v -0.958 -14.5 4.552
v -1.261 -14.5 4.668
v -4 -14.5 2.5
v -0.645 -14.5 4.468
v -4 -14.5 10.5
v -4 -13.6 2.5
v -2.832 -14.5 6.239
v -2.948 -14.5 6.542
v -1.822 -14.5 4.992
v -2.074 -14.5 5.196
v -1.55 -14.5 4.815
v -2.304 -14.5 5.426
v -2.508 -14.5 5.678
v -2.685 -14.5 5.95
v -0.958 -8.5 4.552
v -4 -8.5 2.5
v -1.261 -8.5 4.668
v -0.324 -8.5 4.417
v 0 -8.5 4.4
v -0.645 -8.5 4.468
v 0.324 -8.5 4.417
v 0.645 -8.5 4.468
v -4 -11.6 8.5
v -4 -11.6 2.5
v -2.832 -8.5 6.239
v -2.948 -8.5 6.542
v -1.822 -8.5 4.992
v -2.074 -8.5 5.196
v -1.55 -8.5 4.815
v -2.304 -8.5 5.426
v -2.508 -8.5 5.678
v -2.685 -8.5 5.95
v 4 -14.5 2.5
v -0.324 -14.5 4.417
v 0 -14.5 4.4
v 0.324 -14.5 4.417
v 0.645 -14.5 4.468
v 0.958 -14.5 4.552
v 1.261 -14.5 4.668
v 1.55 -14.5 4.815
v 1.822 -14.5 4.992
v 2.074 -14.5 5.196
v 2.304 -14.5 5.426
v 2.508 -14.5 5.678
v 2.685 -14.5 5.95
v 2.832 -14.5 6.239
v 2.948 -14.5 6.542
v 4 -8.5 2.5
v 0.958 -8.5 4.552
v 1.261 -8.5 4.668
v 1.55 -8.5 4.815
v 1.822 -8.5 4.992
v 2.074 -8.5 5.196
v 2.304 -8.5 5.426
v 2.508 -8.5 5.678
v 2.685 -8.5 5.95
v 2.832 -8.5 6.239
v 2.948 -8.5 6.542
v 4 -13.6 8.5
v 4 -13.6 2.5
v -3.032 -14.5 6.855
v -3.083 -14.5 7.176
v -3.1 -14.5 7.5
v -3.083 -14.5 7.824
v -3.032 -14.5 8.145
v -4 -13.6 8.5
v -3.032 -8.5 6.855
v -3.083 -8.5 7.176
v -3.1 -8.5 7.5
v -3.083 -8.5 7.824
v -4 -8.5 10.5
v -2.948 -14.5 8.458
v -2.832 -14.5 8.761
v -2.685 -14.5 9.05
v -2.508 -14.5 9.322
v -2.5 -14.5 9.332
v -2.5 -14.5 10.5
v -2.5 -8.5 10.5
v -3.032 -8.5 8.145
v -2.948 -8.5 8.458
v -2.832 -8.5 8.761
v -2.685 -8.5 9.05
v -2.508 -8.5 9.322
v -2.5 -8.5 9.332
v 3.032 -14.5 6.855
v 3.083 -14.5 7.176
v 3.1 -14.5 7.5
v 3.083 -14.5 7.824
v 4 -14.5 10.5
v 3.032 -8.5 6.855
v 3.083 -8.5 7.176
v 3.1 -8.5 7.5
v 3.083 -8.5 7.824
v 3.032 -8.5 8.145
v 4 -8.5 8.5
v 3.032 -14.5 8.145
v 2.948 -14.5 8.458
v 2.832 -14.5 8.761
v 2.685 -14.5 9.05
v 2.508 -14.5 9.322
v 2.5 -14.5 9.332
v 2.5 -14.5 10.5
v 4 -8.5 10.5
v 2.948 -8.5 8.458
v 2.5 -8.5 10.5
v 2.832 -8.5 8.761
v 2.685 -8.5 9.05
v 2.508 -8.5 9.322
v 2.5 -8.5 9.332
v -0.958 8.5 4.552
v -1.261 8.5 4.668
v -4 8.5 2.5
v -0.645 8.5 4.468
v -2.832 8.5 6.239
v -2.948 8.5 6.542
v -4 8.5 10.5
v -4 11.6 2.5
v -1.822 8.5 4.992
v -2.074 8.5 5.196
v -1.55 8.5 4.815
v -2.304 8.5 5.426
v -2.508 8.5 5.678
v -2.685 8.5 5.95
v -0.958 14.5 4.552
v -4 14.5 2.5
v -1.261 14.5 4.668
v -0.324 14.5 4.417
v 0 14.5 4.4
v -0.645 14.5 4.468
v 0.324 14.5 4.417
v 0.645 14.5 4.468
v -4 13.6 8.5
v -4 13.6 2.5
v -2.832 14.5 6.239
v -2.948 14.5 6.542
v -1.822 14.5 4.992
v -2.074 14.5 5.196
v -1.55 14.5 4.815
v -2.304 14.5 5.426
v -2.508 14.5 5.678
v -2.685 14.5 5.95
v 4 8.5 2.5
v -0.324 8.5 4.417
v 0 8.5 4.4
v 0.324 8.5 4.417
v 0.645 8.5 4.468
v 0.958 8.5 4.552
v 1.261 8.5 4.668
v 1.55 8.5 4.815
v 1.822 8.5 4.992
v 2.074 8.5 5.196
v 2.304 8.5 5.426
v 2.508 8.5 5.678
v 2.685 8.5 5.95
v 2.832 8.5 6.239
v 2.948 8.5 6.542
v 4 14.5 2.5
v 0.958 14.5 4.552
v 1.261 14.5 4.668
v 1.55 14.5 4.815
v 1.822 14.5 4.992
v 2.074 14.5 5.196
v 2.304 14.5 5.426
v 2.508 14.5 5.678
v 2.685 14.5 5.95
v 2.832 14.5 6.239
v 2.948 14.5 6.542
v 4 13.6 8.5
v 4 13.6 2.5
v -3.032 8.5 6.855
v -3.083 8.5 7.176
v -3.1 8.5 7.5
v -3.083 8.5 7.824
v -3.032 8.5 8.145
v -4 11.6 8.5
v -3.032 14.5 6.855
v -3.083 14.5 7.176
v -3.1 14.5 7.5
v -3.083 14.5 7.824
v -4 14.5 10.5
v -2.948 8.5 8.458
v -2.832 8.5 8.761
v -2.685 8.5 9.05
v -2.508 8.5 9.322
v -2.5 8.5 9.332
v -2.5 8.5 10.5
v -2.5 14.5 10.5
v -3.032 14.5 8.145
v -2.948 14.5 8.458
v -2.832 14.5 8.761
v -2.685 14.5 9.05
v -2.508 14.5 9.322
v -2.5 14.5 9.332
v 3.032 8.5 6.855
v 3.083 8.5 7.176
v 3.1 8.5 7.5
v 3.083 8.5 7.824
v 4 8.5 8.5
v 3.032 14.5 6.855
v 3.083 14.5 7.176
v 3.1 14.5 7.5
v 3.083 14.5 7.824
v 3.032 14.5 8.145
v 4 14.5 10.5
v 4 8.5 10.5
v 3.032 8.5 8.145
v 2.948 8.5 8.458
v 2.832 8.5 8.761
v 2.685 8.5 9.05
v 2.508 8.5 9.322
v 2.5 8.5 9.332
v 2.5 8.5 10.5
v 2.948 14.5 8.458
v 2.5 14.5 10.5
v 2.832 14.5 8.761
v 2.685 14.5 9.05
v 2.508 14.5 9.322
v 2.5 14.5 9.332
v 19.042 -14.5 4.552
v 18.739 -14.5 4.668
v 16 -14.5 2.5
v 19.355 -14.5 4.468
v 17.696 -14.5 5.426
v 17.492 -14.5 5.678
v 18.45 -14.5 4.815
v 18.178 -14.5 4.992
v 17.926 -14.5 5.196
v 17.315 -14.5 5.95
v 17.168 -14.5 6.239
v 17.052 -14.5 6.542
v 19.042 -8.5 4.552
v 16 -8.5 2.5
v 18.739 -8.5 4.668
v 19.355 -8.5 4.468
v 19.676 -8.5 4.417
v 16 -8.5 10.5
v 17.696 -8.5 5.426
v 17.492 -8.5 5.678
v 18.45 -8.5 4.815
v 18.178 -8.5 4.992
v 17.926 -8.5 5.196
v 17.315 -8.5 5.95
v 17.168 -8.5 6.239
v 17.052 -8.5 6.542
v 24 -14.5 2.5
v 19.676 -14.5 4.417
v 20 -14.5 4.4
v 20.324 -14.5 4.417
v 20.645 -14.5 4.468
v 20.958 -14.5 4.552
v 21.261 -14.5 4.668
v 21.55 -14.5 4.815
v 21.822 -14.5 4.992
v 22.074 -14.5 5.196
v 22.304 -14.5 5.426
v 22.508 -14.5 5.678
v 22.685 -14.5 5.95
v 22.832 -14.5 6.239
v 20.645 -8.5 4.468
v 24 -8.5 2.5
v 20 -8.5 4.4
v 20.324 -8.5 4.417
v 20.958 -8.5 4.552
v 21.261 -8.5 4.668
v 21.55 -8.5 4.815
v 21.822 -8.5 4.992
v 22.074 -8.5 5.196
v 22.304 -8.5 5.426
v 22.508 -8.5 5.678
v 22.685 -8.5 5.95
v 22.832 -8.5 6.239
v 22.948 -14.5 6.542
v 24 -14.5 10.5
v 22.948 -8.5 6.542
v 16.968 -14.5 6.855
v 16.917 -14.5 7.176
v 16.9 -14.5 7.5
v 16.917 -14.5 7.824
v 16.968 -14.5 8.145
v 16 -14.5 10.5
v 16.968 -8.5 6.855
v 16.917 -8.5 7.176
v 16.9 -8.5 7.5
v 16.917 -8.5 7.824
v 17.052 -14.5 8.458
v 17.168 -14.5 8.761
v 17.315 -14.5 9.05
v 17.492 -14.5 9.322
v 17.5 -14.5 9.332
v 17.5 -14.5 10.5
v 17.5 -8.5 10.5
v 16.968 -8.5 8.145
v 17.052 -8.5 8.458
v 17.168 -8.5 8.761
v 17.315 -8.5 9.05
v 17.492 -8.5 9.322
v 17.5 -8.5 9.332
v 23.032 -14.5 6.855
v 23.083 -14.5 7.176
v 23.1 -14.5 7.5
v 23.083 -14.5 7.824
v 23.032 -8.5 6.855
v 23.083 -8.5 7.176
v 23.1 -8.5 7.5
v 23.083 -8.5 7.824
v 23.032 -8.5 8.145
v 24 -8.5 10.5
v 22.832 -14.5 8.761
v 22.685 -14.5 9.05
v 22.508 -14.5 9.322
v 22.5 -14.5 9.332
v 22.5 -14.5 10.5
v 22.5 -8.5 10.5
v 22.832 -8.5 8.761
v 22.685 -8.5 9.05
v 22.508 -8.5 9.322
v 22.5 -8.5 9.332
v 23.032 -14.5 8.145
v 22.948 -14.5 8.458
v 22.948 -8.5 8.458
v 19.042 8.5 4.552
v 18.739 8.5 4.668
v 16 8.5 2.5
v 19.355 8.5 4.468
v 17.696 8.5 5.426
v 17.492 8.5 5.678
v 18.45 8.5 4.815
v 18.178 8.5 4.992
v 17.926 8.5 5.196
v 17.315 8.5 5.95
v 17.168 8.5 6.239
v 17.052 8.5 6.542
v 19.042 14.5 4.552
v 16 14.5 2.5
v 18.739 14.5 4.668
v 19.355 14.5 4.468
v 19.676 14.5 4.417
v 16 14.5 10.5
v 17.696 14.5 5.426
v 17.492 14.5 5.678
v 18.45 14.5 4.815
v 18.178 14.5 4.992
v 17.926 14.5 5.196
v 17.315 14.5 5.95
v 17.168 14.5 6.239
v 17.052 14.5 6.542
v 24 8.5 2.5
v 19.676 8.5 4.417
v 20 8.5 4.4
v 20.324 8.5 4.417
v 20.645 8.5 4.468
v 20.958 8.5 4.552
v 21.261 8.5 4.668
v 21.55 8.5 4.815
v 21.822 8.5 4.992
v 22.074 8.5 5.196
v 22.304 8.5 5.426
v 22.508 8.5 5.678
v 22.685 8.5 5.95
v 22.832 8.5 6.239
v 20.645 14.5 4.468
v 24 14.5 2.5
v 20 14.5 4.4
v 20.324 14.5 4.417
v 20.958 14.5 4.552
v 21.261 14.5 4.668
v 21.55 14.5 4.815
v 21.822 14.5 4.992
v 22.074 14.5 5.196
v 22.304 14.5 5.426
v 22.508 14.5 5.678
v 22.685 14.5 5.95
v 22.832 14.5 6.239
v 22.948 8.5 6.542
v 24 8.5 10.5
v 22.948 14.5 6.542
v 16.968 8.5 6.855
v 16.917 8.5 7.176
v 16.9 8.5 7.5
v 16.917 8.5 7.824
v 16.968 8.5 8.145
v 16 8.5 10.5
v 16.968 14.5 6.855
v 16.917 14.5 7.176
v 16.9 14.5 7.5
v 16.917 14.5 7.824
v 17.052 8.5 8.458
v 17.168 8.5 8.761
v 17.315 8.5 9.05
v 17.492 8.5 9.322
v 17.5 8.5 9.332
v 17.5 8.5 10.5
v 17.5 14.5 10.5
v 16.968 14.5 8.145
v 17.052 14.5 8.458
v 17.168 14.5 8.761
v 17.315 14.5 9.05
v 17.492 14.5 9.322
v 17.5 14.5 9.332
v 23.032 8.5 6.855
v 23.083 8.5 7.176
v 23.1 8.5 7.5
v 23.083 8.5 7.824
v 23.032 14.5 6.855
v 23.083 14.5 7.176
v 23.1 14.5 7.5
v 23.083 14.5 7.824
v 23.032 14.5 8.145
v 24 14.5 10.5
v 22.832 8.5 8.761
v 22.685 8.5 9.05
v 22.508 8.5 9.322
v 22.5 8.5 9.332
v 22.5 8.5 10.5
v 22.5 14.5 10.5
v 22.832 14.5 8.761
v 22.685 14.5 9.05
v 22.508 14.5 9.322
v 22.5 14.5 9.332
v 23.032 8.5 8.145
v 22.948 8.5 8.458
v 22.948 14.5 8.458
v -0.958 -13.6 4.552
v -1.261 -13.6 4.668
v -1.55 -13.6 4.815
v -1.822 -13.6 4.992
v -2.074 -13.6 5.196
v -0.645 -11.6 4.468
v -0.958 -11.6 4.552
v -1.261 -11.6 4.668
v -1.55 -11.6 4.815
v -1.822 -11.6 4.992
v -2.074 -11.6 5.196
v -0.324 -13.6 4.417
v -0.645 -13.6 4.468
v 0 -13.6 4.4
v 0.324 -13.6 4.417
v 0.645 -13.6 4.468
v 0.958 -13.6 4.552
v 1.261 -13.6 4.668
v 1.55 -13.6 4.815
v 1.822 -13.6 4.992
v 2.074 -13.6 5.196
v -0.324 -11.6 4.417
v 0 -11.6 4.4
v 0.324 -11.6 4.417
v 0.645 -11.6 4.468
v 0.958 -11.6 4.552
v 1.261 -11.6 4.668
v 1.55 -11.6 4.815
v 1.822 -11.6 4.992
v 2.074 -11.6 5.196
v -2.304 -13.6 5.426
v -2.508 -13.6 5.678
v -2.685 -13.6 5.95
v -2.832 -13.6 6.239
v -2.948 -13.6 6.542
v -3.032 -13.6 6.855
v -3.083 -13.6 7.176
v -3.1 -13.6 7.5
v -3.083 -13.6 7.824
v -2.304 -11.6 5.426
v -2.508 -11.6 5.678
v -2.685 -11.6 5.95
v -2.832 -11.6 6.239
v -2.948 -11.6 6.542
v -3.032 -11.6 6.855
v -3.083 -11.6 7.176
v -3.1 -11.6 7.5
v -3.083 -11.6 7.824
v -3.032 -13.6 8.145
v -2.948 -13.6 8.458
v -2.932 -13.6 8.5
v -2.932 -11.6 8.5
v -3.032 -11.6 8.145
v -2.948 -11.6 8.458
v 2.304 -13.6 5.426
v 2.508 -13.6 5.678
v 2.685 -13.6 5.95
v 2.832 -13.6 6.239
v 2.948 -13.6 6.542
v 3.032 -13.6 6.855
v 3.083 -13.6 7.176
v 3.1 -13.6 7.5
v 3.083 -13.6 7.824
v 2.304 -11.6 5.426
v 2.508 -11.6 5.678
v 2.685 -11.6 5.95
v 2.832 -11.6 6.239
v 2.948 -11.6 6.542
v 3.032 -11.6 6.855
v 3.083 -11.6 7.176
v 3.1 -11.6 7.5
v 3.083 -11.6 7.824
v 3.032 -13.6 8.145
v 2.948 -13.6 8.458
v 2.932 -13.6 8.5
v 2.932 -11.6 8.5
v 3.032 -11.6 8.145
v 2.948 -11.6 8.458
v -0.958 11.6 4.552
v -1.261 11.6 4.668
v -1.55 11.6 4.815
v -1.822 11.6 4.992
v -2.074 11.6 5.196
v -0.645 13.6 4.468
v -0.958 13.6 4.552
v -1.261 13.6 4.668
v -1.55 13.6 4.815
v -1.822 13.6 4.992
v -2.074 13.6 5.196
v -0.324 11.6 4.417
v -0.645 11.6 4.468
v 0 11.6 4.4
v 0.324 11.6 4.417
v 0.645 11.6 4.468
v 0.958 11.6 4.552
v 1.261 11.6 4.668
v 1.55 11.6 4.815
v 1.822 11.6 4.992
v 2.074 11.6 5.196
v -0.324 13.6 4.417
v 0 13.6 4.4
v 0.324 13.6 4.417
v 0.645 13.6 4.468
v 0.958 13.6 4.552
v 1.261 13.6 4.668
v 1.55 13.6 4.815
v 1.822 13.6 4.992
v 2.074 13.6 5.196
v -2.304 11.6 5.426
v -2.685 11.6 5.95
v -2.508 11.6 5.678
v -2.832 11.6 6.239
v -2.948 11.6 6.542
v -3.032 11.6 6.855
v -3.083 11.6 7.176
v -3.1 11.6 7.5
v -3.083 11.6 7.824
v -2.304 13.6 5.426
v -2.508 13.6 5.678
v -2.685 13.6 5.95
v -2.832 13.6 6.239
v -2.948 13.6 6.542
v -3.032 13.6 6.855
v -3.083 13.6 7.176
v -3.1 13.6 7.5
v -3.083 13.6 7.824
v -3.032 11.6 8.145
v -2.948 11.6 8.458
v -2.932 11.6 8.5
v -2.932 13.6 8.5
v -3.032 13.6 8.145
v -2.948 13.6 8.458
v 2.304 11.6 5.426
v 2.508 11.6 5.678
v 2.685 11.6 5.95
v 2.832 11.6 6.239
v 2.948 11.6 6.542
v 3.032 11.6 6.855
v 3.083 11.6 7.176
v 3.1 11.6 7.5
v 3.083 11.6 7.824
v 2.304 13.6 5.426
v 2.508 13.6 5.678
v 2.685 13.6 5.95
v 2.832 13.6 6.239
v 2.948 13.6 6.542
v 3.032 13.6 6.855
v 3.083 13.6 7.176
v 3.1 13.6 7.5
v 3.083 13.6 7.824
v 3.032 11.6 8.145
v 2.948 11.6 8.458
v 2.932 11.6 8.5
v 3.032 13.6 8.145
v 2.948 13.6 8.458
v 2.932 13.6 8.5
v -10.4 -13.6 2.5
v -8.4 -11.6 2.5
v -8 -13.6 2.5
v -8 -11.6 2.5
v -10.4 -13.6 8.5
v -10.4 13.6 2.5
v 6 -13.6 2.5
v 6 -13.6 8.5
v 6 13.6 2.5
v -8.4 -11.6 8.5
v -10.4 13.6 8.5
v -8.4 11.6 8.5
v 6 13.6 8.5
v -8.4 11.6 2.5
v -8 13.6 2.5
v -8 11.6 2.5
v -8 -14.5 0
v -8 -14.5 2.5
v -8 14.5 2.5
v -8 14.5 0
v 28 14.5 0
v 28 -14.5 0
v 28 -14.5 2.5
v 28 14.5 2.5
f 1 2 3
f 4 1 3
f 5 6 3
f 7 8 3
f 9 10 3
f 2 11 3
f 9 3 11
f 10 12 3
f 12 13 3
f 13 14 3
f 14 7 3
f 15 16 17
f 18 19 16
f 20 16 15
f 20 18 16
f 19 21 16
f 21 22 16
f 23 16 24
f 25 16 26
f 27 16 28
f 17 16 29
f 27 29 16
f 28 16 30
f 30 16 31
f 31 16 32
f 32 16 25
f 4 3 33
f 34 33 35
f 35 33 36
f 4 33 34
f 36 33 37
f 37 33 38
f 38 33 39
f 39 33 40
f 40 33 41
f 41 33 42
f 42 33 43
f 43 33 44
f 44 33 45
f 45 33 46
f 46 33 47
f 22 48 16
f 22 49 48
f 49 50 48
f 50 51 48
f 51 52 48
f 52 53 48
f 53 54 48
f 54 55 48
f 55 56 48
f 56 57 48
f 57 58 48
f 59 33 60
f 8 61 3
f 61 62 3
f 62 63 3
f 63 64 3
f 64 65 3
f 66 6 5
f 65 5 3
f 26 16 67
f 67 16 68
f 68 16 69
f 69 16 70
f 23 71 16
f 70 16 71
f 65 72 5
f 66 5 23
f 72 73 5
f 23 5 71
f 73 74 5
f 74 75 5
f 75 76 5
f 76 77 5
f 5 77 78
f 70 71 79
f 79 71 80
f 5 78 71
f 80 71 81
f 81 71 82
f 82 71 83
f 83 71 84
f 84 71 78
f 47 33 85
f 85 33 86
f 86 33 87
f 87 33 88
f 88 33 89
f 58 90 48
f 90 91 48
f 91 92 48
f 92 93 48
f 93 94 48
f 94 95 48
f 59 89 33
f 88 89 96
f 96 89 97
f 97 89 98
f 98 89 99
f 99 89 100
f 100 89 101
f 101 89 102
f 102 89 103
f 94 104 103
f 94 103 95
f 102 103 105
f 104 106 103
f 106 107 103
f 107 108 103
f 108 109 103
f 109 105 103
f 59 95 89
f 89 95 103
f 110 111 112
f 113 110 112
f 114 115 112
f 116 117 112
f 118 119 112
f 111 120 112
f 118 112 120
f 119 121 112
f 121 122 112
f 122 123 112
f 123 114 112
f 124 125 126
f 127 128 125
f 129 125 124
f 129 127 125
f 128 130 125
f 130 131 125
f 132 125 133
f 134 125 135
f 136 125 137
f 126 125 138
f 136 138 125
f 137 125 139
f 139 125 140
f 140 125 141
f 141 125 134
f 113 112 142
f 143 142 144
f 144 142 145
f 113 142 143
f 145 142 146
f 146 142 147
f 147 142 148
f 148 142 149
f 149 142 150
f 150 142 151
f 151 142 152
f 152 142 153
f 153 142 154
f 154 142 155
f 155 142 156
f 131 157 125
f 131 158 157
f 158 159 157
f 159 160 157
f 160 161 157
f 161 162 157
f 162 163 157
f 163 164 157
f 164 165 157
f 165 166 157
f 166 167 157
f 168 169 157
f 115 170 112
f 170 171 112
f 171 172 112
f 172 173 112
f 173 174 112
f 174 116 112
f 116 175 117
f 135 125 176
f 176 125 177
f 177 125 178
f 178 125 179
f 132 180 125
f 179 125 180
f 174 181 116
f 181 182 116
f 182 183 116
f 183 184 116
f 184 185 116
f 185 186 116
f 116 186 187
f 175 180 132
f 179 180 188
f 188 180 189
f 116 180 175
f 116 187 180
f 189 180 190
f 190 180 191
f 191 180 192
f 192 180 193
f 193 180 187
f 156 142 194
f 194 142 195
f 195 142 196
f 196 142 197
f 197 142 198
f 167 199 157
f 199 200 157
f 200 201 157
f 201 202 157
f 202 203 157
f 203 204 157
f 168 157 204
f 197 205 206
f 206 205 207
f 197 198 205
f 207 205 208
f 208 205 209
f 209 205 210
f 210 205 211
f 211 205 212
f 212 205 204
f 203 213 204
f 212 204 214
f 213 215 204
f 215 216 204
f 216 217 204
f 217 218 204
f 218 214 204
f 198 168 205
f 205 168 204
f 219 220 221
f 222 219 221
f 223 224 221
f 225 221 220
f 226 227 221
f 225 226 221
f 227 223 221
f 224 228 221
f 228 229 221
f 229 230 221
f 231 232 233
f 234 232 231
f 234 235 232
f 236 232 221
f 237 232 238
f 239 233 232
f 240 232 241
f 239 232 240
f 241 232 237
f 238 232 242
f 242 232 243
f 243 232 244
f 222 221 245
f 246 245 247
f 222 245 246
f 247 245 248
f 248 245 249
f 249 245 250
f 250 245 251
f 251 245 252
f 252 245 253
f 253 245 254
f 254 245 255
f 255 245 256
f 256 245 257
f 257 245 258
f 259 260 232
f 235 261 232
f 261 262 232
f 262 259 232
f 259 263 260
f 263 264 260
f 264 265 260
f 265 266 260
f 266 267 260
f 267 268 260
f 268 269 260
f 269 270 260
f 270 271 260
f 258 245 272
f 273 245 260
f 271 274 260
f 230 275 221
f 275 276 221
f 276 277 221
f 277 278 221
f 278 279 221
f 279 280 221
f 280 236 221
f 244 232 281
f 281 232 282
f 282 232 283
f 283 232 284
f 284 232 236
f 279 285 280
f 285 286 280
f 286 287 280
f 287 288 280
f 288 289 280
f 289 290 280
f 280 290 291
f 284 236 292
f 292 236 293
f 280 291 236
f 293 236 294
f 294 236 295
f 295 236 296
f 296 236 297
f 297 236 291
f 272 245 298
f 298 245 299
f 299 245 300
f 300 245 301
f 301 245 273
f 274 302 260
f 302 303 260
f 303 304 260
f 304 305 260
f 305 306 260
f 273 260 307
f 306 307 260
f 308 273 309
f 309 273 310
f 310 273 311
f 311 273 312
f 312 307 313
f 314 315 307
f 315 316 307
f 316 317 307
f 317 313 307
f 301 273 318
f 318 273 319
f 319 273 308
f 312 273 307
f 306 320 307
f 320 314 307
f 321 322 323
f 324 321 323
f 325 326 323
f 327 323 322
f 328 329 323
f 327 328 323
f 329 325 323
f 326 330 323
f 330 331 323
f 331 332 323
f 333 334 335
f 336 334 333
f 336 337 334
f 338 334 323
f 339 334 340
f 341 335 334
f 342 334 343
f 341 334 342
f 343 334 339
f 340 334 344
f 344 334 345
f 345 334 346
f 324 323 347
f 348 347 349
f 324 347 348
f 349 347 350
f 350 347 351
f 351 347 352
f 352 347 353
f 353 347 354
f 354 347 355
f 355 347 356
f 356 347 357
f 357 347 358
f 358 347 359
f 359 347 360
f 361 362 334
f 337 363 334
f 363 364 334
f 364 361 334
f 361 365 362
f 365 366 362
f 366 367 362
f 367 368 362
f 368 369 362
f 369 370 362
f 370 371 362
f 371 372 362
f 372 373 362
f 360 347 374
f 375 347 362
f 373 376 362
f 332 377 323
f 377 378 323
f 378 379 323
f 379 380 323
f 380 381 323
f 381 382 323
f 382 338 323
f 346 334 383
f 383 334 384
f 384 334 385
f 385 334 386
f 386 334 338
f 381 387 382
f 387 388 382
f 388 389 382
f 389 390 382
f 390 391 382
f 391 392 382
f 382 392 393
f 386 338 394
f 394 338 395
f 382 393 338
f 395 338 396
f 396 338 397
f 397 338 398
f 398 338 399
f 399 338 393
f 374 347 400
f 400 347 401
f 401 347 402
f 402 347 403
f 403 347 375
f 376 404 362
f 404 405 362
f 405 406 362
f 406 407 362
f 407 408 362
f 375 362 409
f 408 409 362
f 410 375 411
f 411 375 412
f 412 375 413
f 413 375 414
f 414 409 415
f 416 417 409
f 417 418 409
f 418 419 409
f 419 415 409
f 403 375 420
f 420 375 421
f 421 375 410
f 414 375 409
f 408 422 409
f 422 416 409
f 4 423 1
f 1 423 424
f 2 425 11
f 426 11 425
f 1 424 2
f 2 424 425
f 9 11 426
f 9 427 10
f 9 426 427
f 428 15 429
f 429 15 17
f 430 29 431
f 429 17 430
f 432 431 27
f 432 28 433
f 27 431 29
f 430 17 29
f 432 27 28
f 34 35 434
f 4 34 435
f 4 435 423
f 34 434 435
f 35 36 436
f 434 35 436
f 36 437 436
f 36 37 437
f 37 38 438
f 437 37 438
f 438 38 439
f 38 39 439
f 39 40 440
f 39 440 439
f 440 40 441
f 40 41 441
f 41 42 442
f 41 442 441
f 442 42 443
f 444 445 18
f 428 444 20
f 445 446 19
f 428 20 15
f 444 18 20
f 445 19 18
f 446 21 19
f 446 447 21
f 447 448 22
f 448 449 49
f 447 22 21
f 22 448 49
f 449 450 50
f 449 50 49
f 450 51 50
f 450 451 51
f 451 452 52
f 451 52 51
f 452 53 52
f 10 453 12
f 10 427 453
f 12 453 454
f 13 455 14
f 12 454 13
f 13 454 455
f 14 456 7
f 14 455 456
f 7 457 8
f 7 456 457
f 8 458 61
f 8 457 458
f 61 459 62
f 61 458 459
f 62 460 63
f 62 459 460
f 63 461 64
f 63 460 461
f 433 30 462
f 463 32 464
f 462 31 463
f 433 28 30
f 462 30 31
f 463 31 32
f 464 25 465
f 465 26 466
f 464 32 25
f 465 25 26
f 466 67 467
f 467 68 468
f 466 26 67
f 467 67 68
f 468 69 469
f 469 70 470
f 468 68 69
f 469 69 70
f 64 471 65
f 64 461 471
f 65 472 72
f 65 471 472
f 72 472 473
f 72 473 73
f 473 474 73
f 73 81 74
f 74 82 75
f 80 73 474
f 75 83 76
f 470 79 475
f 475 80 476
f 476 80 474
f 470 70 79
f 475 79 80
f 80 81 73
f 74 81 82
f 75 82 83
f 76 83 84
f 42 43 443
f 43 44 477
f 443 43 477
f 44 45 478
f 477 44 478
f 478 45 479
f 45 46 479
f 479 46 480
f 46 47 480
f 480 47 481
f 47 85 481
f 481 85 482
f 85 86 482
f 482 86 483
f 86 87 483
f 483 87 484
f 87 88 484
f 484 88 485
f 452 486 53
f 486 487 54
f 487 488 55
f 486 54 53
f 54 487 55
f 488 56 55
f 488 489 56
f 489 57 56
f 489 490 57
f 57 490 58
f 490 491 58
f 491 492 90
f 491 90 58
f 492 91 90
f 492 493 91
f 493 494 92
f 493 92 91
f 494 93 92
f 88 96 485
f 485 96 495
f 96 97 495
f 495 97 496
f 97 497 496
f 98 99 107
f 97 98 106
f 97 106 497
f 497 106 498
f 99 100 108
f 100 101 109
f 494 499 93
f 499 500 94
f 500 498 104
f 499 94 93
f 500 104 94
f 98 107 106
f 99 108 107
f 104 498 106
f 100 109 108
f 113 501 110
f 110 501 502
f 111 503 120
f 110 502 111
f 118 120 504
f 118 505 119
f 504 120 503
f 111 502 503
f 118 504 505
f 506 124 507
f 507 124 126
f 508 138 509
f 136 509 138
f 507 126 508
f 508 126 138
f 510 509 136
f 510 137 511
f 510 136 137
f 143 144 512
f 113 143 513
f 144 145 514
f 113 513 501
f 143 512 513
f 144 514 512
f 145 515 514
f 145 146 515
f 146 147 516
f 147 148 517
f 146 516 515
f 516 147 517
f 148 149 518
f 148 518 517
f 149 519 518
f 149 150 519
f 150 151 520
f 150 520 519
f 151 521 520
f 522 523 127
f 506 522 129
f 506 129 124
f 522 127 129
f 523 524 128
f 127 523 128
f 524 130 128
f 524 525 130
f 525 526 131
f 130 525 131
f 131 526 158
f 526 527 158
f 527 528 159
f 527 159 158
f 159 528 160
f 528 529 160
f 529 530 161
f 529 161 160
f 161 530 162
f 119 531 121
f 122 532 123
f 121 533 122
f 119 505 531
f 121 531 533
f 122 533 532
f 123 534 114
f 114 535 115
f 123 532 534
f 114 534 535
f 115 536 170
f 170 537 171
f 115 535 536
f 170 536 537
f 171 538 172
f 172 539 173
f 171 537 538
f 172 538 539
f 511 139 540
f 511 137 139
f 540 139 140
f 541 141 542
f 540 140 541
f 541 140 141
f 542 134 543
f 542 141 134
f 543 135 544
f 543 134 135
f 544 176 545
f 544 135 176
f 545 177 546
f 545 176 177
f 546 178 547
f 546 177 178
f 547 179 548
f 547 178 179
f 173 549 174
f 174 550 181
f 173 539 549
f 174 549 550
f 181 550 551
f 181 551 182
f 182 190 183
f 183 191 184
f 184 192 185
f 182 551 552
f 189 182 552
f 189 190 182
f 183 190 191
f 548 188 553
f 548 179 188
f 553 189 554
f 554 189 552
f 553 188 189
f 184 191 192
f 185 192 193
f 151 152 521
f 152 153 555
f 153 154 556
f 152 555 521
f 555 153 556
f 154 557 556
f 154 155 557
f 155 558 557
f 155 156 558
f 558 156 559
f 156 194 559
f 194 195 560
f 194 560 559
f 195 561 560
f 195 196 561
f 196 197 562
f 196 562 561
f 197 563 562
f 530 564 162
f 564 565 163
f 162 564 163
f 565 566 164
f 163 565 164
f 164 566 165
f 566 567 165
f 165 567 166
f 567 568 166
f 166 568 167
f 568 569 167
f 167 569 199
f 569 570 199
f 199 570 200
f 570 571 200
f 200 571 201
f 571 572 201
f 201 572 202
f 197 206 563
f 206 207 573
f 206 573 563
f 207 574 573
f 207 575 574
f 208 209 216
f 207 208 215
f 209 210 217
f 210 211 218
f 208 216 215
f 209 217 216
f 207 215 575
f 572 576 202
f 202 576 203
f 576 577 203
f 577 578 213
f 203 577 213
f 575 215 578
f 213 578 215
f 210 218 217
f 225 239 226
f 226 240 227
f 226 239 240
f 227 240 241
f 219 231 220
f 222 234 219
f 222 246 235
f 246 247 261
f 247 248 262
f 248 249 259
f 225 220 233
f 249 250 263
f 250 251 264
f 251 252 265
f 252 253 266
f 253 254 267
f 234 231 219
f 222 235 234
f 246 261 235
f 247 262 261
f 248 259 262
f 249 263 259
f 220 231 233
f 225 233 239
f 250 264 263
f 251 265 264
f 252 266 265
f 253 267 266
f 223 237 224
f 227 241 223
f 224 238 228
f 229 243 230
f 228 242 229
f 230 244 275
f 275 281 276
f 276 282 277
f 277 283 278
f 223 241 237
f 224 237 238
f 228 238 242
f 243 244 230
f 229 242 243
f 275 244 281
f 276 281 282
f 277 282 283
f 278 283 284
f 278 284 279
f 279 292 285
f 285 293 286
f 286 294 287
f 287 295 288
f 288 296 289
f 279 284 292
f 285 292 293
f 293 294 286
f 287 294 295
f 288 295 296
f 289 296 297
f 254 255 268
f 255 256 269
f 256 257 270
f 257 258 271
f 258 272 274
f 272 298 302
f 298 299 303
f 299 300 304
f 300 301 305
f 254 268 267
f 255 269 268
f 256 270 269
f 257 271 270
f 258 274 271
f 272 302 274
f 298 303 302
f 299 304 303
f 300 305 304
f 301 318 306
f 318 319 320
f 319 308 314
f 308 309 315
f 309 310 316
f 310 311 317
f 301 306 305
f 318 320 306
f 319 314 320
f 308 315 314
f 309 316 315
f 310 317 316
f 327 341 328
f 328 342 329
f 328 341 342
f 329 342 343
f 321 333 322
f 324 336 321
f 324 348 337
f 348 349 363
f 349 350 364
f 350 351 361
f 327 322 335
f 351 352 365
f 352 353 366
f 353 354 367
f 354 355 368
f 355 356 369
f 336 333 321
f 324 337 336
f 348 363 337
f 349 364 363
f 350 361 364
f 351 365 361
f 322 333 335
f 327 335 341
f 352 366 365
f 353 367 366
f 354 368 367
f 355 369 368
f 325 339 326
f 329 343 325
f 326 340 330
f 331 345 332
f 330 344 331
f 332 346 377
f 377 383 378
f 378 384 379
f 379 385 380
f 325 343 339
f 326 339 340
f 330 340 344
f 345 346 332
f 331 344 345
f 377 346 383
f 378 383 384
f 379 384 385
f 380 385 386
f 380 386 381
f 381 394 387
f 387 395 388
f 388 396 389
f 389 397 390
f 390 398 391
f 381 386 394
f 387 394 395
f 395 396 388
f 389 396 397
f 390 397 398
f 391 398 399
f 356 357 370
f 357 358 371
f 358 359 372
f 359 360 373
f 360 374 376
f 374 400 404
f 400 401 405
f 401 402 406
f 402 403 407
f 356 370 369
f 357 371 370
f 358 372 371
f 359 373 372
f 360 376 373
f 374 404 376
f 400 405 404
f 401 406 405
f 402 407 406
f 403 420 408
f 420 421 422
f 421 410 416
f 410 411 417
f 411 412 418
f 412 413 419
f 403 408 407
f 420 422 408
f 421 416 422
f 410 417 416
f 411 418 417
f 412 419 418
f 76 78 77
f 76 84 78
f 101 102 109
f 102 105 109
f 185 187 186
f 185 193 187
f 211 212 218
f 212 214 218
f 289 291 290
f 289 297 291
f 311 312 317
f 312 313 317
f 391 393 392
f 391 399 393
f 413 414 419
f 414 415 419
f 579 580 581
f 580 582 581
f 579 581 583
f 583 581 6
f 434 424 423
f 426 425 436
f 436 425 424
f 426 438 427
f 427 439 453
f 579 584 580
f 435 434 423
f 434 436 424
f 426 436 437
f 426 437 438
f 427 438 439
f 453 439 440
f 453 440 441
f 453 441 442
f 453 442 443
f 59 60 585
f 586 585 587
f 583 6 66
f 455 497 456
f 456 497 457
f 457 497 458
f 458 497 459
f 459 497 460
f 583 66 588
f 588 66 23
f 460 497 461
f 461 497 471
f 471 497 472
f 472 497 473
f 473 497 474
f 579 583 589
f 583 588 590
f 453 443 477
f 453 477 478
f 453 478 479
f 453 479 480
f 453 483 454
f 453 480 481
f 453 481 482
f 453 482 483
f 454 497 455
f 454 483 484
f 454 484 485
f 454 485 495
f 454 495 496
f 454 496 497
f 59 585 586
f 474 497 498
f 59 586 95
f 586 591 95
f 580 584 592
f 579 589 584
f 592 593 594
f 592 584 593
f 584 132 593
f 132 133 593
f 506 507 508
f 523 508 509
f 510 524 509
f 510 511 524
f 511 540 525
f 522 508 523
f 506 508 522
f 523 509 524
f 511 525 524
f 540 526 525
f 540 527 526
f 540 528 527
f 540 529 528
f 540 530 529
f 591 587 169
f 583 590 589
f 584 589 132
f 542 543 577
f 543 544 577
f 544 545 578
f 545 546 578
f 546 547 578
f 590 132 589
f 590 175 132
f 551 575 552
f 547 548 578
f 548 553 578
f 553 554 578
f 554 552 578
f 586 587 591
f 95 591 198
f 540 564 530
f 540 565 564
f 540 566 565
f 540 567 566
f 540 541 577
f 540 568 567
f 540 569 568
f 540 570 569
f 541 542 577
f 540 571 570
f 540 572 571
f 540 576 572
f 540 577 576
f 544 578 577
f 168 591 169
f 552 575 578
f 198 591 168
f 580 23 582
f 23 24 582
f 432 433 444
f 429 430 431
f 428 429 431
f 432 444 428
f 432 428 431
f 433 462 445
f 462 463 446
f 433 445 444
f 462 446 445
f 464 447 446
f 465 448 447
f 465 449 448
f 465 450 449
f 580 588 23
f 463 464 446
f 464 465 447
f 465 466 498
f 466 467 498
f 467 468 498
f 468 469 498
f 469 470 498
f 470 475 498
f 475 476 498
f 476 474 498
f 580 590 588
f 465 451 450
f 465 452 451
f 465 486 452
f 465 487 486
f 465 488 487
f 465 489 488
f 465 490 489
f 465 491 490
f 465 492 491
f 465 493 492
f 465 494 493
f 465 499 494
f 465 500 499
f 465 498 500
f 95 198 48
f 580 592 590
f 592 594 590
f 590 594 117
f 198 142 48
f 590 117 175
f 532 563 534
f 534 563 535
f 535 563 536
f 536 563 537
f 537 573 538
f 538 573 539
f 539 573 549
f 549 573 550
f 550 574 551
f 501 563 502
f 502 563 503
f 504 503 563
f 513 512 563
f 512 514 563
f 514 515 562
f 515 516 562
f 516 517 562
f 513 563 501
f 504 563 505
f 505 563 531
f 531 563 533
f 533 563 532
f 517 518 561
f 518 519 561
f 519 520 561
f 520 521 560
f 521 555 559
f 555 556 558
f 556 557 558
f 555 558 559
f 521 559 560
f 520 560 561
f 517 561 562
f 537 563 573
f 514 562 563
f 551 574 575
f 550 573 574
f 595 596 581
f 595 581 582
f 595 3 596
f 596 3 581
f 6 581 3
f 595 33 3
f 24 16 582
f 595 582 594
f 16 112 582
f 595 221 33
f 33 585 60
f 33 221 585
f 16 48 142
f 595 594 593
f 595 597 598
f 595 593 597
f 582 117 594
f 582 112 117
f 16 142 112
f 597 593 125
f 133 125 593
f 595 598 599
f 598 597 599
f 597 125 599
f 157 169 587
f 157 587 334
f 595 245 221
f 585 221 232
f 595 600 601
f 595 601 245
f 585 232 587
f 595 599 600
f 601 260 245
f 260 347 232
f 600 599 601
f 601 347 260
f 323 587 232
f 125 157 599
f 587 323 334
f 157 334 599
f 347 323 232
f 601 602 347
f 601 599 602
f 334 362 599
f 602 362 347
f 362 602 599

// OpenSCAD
// file: design_params.scad
// ============================================================
// STARLING SHARED DESIGN PARAMETERS — single source of truth for
// every dimension two parts must agree on.
//
// Consumers:
//   - every part in cad/ does        include <design_params.scad>
//   - parts in cad/calibration/ do   include <../design_params.scad>
//   - scripts/check_params.py FAILS the build if any of these names
//     is re-declared anywhere else — change values HERE only.
//
// Keep this file to simple `name = value;` lines so the tooling can
// parse it. One-off experiments: `openscad -D name=value` beats the
// include, no need to edit this file.
// ============================================================

// --- The paper tube (bought part, consumable) ---
tube_od     = 52.95;   // measured tube OD — verify with cad/calibration/tube_fit_ring.scad
tube_wall   = 3;       // paper wall thickness (measure your tube)
tube_length = 540;

// --- Printed-part fits ---
sleeve_clearance = 0;  // added to every sleeve bore diameter; tune via the fit ring
fit_tol          = 0.2; // clearance for printed slots/pockets
sleeve_wall      = 3;  // wall thickness of printed sleeves

// --- Wing spar chain (rib holes = adapter sockets = carbon rods) ---
spar_rod_d    = 6;     // carbon rod diameter
spar_hole_d   = 6.2;   // printed hole for that rod
spar_spacing  = 20;    // chordwise distance between the two spars
spar_y_offset = 1.5;   // spar line sits this far above the rib chord line

// --- Wing geometry ---
rib_chord     = 100;
naca_code     = 2415;  // cambered lifting section
rib_thickness = 2;

// --- Wing adapter <-> root rib interface ---
wing_tab_thickness = 11; // adapter tab; the root-rib window = this + fit_tol
wing_tab_span      = 15; // how far the tab reaches out from the sleeve
adapter_length     = 40; // sleeve length = tab chord extent

// --- Stations along the tube (assembly; wing slides for CG trim) ---
wing_station       = 300; // wing adapter position, measured from the motor face
tail_tube_stop     = 54;  // tube bottoms out here inside the tail sleeve (rim top)
nose_sleeve_length = 20;  // how far the nose cone slides over the tube

// --- Servos (9 g / SG90 class) ---
servo_body   = [23, 12.2]; // [length, width]
servo_flange = [32, 12.2];
servo_height = 22;         // body height incl. shaft boss, without horn

// --- Control system (internal servos, wire pushrods through wall slots) ---
ctrl_chord       = 22;   // control-surface chord (elevator / rudder / aileron)
ctrl_thickness   = 4;    // control-surface root thickness = fin thickness
hinge_groove_w   = 1.6;  // groove for the hinge strip/tape, both fin TE and surface LE
hinge_groove_d   = 2.5;
pushrod_d        = 1.2;  // piano-wire pushrod
pushrod_slot_w   = 2.5;  // wall slot the pushrod moves in
pushrod_slot_len = 18;   // covers full servo travel + rod + margin (see throw_check.py)
servo_horn_r     = 10;   // usable horn radius on a 9 g servo
servo_travel_deg = 40;   // realistic one-sided 9 g travel at standard PWM
ctrl_horn_r      = 8;    // control-surface horn radius

// --- Motor (22xx class, rear pusher) ---
motor_shaft_hole_d = 10;
motor_screw_hole_d = 4;
motor_pattern_x    = 16;  // screw pattern
motor_pattern_y    = 19;
// main file
// ==============================================================================
//   WING SERVO MOUNT — printed cradle that snap-clips onto BOTH wing spar
//   rods, holding a 9 g aileron servo close to the fuselage tube (inboard),
//   INSIDE the wing: the servo hides under the foam skin and only the
//   pushrod exits through a small slot in the skin — far less drag than a
//   surface-mounted servo.
//
//   Local frame: X = chord (spars at x = 0 and spar_spacing, LE toward +X),
//   Y = span, Z = wing thickness. The servo lies on its side between the
//   spars, shaft toward the TE, so the horn swings in the chord plane and
//   the pushrod runs straight aft to the aileron horn. Zip-tie or glue the
//   servo into the fence; snap the clips onto the rods next to a rib and
//   tack with CA.
// ==============================================================================

include <design_params.scad>

$fn = 60;

plate_t   = 2.5;
clip_w    = 6;      // each clip along the span direction
clip_gap  = 1;      // clip mouth narrowing for snap fit
fence_h   = 6;
fence_t   = 2;

plate_x   = spar_spacing + 16;         // covers both spars + margin
plate_y   = servo_body[0] + 2 * fence_t + 2;

module spar_clip() {
    // C-clip that snaps down onto a spar rod lying along Y
    difference() {
        translate([-4, 0, 0]) cube([8, clip_w, 8]);
        translate([0, -0.1, 5])
            rotate([-90, 0, 0])
                cylinder(h = clip_w + 0.2, d = spar_hole_d);
        // mouth
        translate([-(spar_rod_d - clip_gap) / 2, -0.1, 5])
            cube([spar_rod_d - clip_gap, clip_w + 0.2, 4]);
    }
}

module wing_servo_mount() {
    body_l = servo_body[0] + fit_tol;
    body_w = servo_body[1] + fit_tol;

    // Base plate spanning both spars
    translate([-8, -plate_y / 2, 0])
        cube([plate_x, plate_y, plate_t]);

    // Clips: two per rod, at the plate's span-wise edges
    for (x = [0, spar_spacing])
        for (y = [-plate_y / 2, plate_y / 2 - clip_w])
            translate([x, y, plate_t])
                spar_clip();

    // Servo fence between the spars (servo on its side, shaft toward TE=-X)
    translate([-(body_w + fence_t) + 4, -body_l / 2 - fence_t, plate_t])
        difference() {
            cube([body_w + 2 * fence_t, body_l + 2 * fence_t, fence_h]);
            translate([fence_t, fence_t, -0.1])
                cube([body_w, body_l, fence_h + 0.2]);
        }
}

wing_servo_mount();
